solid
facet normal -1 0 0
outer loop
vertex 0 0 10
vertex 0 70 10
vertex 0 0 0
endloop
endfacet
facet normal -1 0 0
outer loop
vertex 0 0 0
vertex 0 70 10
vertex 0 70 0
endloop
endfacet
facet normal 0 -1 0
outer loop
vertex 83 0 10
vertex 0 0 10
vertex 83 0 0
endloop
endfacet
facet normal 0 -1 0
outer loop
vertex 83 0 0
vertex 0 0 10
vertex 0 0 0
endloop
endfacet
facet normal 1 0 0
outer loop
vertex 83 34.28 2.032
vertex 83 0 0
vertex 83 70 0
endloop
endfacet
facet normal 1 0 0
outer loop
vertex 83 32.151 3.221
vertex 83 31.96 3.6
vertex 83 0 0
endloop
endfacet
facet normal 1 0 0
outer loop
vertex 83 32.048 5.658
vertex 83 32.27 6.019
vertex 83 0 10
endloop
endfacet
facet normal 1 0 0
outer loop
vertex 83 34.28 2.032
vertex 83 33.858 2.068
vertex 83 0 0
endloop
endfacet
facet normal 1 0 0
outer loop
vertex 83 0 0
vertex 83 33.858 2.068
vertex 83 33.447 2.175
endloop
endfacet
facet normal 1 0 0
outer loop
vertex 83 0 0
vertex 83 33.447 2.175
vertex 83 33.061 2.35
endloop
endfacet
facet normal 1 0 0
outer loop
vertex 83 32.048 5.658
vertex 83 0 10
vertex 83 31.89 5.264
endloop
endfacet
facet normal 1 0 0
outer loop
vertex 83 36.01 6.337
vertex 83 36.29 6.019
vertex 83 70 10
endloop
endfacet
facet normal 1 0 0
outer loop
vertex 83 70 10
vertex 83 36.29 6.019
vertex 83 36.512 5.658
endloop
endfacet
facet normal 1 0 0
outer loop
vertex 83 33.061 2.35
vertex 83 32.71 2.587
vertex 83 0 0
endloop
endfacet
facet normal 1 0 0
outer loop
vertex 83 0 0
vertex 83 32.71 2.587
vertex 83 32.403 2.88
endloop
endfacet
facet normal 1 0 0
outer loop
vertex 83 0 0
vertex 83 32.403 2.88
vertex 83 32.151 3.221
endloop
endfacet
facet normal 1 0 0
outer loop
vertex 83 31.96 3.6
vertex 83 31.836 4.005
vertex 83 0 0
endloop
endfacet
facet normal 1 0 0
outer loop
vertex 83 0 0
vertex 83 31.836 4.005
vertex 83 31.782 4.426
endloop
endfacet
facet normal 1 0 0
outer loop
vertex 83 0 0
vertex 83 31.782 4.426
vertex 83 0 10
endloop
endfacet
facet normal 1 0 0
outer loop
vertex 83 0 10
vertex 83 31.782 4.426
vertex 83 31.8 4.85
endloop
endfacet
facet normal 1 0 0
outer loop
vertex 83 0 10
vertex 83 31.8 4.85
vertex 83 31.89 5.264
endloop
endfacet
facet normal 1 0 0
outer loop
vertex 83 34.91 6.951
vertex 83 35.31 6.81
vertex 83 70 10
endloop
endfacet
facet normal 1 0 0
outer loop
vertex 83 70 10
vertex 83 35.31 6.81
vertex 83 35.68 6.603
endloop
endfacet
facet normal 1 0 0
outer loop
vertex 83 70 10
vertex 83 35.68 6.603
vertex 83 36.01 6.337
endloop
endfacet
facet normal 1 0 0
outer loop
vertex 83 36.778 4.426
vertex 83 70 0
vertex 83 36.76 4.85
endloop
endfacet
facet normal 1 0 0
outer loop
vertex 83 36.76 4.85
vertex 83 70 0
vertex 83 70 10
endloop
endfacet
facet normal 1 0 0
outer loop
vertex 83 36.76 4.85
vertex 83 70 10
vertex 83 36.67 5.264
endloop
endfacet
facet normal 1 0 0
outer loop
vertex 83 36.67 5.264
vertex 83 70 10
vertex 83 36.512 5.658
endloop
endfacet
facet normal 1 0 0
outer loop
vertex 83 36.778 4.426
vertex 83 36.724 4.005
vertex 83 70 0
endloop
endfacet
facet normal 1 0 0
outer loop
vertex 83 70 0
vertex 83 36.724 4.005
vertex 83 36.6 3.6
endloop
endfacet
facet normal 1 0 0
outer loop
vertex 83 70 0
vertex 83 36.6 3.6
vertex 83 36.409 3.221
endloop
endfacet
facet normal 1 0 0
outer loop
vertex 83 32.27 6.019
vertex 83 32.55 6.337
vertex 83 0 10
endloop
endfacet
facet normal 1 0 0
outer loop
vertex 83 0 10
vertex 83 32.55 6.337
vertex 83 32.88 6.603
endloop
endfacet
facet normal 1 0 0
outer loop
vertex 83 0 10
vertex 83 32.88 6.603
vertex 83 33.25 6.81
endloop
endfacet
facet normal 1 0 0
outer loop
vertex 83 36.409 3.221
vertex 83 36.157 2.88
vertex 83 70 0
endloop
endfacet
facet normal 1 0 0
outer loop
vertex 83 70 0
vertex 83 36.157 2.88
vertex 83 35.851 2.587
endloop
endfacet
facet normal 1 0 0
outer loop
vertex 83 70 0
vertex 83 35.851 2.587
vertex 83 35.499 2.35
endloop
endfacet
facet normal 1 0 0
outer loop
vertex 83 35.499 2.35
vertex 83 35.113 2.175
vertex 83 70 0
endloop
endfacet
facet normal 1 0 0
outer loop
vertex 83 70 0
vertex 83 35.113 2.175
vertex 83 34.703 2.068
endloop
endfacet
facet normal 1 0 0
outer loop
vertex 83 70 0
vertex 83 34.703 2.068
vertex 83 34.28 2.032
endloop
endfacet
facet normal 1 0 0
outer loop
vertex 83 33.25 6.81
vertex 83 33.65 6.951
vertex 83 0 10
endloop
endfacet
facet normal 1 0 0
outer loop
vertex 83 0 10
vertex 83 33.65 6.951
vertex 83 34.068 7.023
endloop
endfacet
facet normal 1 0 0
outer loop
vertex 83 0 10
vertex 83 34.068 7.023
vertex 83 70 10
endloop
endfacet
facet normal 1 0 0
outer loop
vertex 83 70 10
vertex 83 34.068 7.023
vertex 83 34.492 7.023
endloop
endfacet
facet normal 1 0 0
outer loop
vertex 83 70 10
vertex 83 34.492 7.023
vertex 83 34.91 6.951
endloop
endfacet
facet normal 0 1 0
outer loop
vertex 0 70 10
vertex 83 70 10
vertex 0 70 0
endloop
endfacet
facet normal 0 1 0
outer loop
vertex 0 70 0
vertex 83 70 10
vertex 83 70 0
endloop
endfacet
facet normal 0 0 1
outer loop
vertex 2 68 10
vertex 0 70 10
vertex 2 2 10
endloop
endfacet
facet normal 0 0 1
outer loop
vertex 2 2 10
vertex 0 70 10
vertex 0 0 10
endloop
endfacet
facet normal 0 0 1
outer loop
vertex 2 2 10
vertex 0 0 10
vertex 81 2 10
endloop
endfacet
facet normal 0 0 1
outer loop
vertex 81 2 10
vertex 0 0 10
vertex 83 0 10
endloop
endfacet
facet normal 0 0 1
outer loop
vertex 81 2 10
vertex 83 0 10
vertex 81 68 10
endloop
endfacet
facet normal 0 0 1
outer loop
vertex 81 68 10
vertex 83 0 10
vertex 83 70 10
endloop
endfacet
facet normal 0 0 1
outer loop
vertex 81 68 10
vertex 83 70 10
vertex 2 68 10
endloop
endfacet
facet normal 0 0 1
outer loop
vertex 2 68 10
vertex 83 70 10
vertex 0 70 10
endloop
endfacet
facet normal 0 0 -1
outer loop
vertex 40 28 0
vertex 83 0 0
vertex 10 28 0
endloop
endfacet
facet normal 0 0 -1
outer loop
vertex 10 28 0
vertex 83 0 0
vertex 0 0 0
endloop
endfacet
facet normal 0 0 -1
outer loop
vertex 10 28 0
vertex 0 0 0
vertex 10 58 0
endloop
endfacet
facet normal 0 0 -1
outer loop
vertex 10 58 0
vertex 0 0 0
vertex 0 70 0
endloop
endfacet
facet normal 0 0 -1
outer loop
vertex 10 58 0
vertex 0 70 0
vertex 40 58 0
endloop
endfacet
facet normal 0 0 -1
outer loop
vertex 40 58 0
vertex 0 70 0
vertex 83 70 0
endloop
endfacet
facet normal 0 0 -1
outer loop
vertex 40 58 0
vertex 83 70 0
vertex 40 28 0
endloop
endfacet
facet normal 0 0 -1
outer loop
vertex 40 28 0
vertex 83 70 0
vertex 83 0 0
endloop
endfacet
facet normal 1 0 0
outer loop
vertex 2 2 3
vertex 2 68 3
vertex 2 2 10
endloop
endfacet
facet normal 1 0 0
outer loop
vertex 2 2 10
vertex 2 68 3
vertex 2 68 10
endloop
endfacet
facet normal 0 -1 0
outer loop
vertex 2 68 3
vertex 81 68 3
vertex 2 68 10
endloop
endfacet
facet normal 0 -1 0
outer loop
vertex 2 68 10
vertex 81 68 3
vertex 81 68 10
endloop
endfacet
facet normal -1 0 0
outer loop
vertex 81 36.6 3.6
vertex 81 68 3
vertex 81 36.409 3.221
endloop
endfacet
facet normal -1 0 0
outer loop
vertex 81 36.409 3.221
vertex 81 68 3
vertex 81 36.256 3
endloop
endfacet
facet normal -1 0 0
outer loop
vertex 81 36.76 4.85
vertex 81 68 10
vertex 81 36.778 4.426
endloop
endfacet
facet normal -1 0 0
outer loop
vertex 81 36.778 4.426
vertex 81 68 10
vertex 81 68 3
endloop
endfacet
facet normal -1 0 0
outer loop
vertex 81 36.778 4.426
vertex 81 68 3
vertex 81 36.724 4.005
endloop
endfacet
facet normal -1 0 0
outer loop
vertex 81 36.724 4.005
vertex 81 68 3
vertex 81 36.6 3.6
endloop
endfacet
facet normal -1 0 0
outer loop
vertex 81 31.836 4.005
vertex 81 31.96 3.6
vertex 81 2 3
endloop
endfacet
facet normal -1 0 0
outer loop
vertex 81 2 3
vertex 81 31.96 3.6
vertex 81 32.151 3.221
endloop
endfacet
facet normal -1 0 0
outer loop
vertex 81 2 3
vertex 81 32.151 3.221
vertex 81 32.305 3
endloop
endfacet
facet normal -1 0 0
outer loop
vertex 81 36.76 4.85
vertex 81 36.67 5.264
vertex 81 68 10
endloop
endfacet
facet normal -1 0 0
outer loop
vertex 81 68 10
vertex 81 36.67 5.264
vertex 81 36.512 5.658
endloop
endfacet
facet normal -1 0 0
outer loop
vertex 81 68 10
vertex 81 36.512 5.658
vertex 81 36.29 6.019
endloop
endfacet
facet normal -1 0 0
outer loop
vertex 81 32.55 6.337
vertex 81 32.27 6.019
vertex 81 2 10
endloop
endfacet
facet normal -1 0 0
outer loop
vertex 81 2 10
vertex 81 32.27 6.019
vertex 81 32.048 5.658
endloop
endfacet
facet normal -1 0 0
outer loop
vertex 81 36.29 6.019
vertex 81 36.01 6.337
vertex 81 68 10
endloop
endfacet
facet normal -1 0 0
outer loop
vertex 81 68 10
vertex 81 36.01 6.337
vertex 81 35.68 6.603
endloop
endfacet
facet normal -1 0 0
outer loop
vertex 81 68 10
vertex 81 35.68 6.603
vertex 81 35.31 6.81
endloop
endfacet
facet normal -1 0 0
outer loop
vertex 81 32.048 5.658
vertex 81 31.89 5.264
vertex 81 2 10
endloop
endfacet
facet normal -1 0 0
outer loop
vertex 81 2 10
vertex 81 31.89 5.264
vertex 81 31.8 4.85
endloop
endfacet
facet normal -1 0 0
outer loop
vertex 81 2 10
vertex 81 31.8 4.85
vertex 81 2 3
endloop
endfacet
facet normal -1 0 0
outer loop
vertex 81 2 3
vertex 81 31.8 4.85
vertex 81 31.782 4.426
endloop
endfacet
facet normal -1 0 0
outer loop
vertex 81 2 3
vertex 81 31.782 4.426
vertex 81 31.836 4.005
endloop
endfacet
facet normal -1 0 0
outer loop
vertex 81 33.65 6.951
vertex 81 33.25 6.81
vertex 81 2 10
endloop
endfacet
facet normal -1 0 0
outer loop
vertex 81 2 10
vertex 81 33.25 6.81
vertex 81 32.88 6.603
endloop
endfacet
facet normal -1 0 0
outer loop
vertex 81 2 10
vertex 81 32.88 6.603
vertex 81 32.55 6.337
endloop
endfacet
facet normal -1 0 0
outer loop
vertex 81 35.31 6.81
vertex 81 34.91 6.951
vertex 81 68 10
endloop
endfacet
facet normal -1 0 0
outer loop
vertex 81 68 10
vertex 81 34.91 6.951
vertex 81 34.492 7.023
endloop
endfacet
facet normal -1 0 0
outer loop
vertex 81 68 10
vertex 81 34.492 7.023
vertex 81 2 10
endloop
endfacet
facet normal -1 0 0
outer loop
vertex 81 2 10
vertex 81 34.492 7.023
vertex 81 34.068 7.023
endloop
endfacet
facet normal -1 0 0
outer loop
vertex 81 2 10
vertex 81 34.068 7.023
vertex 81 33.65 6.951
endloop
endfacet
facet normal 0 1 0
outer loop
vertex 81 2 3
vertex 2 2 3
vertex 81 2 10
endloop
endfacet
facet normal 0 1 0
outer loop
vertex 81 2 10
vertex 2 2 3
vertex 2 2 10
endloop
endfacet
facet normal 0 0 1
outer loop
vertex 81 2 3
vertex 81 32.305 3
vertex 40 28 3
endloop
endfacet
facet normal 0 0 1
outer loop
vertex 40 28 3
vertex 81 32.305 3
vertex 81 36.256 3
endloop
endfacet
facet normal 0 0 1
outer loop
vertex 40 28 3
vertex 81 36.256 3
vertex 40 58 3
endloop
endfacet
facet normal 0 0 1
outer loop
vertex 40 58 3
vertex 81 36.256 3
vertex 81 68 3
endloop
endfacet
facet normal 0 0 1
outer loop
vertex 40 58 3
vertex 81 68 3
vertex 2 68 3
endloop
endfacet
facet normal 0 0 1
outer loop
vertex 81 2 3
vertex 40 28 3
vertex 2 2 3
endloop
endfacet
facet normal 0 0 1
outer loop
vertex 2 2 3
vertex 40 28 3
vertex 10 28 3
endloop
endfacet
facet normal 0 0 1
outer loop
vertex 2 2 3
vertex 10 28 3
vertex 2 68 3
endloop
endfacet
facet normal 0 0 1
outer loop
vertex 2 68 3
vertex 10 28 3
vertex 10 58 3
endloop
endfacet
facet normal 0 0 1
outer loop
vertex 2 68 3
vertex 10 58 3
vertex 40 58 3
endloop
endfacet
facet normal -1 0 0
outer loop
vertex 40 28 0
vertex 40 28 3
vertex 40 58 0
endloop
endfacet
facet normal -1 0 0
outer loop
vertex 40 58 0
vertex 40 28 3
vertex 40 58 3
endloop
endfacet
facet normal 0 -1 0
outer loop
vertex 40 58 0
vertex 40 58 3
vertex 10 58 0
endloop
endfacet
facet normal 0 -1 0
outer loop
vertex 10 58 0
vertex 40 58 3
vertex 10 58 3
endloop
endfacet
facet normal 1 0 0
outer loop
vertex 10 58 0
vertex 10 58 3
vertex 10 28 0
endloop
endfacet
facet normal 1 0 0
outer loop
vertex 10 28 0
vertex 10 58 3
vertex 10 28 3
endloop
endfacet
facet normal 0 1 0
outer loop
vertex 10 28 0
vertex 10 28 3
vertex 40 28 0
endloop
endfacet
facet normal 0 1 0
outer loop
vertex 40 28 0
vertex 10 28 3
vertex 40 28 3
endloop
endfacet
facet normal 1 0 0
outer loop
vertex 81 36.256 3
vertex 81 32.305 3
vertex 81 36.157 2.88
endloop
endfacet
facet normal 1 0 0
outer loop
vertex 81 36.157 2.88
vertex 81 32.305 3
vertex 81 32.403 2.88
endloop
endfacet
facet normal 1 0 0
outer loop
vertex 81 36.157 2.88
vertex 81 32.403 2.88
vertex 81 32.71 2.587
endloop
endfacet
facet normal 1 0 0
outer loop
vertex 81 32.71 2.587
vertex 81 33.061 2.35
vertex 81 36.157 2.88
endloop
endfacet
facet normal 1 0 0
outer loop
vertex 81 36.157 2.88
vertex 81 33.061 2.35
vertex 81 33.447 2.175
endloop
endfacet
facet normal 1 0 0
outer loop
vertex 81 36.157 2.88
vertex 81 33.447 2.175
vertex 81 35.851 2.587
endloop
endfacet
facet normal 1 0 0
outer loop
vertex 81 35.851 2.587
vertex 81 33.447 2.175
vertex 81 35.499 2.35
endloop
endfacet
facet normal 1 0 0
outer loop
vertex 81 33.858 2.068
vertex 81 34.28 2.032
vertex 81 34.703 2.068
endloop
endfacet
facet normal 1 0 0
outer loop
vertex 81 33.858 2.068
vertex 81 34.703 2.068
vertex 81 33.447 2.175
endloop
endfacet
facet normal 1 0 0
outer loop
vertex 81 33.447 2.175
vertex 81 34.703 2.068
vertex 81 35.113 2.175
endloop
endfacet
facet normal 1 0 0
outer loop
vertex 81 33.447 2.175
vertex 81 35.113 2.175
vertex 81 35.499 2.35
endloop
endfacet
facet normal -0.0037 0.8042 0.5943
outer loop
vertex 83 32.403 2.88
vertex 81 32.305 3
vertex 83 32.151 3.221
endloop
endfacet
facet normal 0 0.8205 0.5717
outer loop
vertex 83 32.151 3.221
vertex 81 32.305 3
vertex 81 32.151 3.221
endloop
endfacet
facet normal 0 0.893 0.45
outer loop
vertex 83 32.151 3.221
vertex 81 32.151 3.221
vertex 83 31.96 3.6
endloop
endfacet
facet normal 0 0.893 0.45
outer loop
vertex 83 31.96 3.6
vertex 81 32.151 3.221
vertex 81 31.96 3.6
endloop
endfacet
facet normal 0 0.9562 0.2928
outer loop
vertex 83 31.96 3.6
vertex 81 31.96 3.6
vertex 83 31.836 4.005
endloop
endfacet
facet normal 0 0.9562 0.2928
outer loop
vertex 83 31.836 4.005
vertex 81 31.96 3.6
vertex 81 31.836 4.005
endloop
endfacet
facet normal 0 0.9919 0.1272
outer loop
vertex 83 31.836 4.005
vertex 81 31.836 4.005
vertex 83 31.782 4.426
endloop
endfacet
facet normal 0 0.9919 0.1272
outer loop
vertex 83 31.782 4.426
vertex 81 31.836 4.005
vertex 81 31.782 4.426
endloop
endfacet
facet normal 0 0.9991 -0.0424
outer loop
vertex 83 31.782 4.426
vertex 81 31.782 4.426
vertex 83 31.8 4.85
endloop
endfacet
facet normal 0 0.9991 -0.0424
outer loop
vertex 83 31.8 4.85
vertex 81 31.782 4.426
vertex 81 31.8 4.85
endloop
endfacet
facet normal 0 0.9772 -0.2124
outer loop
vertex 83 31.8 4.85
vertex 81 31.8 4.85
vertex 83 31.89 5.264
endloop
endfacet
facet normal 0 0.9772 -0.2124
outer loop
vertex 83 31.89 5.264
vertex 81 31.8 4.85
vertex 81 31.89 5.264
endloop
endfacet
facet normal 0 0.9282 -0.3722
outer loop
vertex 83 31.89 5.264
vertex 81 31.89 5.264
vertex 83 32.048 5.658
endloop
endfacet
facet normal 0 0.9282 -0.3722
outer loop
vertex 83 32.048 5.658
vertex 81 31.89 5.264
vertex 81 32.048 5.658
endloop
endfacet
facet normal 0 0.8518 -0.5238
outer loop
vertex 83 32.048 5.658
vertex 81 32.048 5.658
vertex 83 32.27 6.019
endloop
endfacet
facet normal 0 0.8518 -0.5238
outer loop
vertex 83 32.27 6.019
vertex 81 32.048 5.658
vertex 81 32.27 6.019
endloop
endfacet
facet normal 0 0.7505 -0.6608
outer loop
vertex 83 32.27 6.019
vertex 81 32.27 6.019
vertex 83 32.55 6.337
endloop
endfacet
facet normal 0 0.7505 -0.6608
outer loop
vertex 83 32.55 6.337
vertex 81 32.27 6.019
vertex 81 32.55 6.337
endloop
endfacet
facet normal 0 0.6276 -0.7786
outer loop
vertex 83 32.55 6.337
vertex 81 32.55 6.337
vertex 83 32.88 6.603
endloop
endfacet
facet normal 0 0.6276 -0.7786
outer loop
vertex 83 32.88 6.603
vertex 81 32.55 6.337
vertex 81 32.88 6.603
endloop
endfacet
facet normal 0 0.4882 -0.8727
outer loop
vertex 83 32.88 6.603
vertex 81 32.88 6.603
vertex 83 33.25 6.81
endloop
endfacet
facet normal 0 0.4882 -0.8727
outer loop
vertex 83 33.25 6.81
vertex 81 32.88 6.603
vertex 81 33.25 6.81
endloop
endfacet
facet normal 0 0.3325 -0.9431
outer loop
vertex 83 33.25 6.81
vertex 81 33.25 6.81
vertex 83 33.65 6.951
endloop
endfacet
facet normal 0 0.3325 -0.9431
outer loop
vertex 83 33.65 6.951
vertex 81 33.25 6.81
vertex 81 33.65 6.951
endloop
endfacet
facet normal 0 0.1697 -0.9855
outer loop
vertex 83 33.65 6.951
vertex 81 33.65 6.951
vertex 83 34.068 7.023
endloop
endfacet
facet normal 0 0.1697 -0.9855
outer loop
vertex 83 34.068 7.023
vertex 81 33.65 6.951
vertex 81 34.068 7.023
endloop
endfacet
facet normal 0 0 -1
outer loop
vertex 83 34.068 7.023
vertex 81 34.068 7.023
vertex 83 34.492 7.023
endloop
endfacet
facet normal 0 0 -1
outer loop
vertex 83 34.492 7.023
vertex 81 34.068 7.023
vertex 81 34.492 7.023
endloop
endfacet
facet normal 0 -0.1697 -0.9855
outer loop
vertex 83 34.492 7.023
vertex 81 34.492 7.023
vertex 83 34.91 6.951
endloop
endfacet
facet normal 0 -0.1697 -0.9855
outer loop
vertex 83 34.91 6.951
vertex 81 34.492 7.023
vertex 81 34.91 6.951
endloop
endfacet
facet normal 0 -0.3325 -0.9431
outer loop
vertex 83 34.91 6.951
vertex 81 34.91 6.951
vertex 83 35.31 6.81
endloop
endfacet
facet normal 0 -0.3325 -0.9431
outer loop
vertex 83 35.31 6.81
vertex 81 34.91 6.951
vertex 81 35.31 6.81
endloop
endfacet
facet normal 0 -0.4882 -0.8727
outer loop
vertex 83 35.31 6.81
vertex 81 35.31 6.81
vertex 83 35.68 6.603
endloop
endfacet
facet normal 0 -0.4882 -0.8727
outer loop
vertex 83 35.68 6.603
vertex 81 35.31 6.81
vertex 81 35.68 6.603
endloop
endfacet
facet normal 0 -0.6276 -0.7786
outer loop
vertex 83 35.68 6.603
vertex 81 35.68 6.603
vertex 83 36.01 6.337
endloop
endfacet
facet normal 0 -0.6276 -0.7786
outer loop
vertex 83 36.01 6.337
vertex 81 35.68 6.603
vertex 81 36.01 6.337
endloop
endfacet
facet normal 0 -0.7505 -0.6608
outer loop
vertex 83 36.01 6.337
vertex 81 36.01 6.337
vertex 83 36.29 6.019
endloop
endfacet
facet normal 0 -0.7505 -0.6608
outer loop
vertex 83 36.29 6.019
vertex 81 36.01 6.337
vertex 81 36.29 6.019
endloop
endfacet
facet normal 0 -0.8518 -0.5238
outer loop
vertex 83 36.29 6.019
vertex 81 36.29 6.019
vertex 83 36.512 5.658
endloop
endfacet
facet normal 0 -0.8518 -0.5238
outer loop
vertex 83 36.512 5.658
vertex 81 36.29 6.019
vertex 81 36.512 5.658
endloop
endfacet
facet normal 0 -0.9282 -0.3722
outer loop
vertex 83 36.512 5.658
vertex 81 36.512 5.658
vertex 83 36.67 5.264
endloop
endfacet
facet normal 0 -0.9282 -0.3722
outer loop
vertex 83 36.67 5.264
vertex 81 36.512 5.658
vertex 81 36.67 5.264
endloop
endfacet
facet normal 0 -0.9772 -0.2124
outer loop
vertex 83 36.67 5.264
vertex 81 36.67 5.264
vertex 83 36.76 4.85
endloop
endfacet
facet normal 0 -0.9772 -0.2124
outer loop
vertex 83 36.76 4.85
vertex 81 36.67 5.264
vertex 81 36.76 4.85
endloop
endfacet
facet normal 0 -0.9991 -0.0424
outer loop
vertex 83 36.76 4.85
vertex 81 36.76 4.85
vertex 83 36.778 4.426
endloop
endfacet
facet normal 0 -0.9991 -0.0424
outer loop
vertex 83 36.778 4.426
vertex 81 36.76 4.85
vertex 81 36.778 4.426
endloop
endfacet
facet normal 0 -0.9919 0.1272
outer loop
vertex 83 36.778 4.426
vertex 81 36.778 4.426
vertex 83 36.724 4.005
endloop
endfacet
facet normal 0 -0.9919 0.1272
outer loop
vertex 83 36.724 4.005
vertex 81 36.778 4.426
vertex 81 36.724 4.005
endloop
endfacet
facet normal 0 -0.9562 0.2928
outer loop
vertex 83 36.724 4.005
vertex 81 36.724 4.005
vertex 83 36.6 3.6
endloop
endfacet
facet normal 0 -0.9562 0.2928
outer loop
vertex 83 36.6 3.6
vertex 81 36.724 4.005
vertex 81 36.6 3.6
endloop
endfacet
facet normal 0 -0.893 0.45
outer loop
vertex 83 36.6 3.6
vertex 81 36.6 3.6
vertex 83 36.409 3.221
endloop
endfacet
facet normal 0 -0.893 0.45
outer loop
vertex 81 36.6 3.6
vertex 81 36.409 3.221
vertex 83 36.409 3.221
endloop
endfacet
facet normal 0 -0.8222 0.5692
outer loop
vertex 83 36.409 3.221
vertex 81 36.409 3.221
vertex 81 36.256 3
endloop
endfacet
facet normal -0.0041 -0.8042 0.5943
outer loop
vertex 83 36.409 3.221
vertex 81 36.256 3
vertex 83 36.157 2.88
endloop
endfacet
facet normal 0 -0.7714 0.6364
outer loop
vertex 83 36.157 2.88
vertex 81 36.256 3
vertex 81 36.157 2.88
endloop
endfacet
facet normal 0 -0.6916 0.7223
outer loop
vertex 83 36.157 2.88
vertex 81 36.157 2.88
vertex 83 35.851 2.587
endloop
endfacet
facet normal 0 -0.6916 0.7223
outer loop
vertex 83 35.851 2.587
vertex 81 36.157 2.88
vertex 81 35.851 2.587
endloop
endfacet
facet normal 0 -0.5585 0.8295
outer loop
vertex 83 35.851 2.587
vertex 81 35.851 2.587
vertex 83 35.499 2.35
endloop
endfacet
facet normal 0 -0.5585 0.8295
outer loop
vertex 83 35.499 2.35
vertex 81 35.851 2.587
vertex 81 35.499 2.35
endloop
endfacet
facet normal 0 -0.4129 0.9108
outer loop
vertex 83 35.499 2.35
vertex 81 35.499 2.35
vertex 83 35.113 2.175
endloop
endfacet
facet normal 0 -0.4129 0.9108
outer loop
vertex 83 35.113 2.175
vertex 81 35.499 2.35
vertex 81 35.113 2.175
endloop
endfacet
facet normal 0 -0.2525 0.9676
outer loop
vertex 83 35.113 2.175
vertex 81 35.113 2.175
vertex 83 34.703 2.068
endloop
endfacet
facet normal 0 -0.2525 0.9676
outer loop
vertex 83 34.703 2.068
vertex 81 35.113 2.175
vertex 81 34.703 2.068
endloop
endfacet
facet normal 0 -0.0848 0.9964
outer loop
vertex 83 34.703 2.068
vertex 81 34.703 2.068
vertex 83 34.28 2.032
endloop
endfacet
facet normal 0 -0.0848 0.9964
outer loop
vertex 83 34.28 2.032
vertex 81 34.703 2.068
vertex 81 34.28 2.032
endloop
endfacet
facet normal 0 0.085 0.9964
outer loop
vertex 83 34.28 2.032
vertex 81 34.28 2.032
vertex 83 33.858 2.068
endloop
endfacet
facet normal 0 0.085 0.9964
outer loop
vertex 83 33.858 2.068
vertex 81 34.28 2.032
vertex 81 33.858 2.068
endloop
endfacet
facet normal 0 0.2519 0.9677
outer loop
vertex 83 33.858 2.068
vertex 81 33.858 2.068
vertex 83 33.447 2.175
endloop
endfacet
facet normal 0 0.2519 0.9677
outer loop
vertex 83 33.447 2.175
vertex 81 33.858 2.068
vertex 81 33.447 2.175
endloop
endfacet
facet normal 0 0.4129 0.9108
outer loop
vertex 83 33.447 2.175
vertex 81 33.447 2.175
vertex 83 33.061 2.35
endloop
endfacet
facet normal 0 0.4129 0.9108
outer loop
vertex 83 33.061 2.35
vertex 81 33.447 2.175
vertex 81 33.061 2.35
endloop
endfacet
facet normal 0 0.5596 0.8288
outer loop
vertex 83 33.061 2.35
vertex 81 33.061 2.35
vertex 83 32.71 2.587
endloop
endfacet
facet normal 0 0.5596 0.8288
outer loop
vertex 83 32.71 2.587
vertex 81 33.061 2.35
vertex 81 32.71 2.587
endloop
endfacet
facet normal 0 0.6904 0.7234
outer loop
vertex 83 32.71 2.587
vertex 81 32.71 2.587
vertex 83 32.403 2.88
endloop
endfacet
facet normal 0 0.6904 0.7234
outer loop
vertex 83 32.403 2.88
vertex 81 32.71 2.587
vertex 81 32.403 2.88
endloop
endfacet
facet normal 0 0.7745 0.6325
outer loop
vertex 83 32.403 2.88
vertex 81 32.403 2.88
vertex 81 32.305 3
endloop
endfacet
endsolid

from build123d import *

# Parameters (mm, degrees)
SKETCH1_W           = 83
SKETCH1_H           = 70
BOSS_EXTRUDE1_DEPTH = 10
SKETCH3_W           = 79
SKETCH3_H           = 66
CUT_EXTRUDE1_DEPTH  = 7
SKETCH4_W           = 30
SKETCH4_H           = 30
CUT_EXTRUDE2_DEPTH  = 7
SKETCH5_R           = 2.5
CUT_EXTRUDE3_DEPTH  = 2


with BuildPart() as part:
    # Sketch1 → Boss-Extrude1 (new body)
    with BuildSketch(Plane.XY):
        with Locations((41.5, 35)):
            Rectangle(SKETCH1_W, SKETCH1_H)
    extrude(amount=BOSS_EXTRUDE1_DEPTH)

    # Sketch3 → Cut-Extrude1 (cut)
    with BuildSketch(Plane.XY.offset(10)):
        with Locations((41.5, 35)):
            Rectangle(SKETCH3_W, SKETCH3_H)
    extrude(amount=-CUT_EXTRUDE1_DEPTH, mode=Mode.SUBTRACT)

    # Sketch4 → Cut-Extrude2 (cut)
    with BuildSketch(Plane(origin=(0, 0, 0), x_dir=(-1, 0, 0), z_dir=(0, 0, -1))):
        with Locations((-25, 43)):
            Rectangle(SKETCH4_W, SKETCH4_H)
    extrude(amount=-CUT_EXTRUDE2_DEPTH, mode=Mode.SUBTRACT)

    # Sketch5 → Cut-Extrude3 (cut)
    with BuildSketch(Plane(origin=(83, 0, 0), x_dir=(0, 0, -1), z_dir=(1, 0, 0))):
        with Locations((-4.532050628, 34.280077889)):
            Circle(SKETCH5_R)
    extrude(amount=-CUT_EXTRUDE3_DEPTH, mode=Mode.SUBTRACT)


solid = part.part
